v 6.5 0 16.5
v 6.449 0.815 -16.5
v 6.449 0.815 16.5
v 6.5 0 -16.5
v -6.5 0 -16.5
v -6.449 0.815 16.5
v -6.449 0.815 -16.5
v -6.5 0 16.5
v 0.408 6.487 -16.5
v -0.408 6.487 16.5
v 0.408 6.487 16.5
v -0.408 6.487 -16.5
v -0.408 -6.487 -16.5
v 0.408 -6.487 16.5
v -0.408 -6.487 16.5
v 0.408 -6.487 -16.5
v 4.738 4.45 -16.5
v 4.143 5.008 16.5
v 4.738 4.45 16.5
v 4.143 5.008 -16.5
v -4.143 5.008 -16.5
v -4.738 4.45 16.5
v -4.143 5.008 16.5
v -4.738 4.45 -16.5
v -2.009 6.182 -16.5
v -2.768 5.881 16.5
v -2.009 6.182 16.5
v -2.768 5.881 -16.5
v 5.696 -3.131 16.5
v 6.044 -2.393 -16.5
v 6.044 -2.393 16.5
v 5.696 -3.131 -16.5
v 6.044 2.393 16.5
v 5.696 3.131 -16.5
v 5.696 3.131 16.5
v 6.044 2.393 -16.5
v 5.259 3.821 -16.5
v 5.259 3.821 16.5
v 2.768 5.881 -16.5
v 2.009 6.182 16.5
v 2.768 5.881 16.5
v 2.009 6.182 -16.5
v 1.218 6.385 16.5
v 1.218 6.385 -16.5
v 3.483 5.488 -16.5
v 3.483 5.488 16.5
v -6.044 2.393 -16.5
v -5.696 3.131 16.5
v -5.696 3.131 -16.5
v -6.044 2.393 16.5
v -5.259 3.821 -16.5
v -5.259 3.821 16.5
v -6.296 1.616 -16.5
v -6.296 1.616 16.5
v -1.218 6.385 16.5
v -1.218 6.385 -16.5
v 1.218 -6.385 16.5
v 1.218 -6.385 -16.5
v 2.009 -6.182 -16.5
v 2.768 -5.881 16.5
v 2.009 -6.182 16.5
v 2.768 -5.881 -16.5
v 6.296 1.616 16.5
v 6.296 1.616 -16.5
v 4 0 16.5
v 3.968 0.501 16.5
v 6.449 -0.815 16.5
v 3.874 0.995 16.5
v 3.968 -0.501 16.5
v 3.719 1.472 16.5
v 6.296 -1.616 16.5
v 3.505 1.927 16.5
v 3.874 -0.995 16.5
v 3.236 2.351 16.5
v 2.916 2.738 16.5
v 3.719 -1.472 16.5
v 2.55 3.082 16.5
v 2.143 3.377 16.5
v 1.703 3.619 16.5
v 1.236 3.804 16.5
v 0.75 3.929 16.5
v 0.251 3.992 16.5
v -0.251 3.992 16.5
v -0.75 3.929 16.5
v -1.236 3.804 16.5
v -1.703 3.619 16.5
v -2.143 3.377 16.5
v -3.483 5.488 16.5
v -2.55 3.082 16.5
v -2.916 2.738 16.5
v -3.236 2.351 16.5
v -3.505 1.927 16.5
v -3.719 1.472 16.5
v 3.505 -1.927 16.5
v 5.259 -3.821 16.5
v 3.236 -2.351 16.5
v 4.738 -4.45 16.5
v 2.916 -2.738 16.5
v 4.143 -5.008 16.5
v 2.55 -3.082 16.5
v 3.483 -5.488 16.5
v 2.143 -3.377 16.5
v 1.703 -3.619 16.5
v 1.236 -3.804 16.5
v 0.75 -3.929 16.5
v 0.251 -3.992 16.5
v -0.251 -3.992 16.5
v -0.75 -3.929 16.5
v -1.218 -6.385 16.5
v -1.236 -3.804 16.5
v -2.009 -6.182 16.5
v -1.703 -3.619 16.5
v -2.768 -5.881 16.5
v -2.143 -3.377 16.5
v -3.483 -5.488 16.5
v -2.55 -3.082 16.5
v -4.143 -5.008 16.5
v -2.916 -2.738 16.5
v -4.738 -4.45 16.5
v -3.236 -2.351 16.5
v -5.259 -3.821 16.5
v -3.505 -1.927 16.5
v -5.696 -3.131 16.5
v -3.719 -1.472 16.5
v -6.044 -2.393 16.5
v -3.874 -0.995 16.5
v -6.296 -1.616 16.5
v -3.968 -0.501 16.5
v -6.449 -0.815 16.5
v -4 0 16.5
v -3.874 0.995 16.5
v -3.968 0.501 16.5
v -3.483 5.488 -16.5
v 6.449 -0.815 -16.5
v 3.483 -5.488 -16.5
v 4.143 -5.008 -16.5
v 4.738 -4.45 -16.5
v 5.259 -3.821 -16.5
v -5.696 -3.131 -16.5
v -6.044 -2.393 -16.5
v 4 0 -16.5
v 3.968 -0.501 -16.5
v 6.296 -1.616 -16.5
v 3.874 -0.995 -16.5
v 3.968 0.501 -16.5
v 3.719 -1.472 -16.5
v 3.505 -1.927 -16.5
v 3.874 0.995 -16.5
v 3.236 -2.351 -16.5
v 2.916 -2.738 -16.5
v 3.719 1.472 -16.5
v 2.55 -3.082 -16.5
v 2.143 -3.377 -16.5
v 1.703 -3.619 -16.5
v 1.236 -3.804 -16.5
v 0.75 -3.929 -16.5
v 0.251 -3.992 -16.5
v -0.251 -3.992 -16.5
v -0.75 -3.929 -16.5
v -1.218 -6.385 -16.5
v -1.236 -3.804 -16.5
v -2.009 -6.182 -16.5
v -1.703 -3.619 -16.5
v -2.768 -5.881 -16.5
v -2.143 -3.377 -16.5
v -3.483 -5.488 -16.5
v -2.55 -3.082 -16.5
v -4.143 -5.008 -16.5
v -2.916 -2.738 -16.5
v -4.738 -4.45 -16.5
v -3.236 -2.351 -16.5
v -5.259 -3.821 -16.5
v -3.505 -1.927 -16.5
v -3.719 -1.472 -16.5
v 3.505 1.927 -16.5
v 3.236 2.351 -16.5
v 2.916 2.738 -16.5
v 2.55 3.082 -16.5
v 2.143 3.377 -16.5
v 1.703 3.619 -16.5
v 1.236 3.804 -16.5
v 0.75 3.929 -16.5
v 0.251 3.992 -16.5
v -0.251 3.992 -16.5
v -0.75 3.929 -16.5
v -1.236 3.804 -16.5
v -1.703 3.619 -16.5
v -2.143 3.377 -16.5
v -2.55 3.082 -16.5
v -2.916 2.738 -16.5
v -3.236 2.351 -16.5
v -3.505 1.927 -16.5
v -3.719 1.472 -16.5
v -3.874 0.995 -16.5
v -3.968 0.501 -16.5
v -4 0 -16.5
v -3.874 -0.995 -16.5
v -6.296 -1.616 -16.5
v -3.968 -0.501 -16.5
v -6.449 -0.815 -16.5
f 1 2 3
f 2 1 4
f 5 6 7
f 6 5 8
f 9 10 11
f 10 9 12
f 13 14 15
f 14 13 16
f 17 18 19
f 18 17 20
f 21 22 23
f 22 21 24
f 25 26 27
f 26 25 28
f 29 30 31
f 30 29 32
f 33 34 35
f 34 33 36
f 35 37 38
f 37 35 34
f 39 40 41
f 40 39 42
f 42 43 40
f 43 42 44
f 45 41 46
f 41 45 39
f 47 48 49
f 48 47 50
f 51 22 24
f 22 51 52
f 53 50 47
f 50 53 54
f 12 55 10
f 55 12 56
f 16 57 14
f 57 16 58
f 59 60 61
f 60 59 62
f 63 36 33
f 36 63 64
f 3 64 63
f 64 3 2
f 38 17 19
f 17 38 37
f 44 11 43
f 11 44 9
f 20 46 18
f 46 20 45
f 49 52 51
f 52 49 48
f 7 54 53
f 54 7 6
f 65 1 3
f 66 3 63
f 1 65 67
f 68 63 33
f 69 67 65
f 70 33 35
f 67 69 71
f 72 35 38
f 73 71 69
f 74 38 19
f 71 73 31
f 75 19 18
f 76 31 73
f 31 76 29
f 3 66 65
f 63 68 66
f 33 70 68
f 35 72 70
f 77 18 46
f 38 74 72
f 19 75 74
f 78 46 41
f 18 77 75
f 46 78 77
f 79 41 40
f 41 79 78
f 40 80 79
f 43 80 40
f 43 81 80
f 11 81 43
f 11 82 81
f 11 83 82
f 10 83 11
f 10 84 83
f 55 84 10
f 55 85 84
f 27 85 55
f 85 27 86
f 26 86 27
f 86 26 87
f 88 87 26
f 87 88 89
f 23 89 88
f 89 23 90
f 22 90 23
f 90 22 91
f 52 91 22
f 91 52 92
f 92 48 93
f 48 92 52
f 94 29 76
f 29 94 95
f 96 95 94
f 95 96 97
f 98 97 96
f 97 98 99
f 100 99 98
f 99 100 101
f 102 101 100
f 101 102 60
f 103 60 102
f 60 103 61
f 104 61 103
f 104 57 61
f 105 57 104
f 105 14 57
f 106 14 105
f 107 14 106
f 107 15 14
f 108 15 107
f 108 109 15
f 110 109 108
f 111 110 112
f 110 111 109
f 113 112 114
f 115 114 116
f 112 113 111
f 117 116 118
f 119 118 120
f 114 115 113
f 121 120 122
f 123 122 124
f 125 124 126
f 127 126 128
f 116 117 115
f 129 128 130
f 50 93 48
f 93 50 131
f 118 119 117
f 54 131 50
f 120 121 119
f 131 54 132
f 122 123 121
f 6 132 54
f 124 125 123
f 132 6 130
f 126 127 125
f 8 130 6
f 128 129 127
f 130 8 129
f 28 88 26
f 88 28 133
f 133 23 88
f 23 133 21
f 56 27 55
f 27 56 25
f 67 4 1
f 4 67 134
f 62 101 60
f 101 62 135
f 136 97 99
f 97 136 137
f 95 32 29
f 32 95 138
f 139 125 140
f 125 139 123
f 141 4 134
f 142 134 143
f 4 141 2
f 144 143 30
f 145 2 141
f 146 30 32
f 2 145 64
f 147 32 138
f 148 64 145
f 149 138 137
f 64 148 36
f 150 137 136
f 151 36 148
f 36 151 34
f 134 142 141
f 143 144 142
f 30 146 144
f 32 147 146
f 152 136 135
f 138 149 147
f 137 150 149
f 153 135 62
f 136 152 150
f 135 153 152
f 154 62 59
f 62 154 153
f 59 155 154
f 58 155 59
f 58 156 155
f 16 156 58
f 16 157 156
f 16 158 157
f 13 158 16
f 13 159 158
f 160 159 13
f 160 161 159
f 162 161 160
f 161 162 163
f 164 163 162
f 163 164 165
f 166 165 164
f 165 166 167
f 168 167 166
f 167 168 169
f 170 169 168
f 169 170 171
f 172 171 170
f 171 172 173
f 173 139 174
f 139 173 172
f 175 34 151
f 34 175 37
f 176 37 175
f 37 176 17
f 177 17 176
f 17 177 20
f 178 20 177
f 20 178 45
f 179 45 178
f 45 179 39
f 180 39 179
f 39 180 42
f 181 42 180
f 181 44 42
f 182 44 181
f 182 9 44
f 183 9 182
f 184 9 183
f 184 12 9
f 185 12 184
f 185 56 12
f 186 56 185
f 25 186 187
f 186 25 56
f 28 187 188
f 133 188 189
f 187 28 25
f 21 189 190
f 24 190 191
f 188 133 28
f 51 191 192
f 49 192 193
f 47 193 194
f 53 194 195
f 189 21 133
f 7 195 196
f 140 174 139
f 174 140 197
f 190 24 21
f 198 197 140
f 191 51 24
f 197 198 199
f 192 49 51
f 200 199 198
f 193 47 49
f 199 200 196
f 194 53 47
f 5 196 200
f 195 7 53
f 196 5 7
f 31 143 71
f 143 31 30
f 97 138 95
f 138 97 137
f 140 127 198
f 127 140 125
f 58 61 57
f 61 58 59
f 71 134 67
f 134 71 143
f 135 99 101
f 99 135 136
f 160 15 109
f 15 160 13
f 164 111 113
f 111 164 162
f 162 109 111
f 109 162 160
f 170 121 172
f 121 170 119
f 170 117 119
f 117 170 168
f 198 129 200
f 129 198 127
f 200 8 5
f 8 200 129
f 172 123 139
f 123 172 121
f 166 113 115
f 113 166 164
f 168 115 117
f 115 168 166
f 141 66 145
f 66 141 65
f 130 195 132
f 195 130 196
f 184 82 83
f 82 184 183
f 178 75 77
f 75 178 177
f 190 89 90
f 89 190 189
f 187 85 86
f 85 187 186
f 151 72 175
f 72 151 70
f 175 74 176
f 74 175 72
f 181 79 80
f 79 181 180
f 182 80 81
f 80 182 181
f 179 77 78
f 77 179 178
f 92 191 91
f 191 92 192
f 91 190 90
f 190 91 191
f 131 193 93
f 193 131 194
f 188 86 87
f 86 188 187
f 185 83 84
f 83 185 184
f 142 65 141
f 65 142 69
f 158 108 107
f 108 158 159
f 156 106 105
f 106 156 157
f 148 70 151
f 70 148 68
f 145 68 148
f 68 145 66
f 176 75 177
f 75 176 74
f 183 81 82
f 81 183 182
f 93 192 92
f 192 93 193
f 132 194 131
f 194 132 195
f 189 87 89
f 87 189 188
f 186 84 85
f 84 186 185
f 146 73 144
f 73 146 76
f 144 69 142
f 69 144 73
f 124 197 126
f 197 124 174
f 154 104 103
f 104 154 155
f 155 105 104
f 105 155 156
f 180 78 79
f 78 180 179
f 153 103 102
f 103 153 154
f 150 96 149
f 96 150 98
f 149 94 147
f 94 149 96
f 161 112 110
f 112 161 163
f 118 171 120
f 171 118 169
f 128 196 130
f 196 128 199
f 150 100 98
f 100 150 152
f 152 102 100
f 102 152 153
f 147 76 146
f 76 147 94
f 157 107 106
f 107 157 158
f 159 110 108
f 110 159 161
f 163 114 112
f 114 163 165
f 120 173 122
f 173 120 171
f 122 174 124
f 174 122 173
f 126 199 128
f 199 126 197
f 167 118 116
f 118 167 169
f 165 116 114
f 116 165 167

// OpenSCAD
$fn = 50;


difference() {
	union() {
		translate(v = [0, 0, -16.5000000000]) {
			cylinder(h = 33, r = 6.5000000000);
		}
	}
	union() {
		translate(v = [0, 0, -100.0000000000]) {
			cylinder(h = 200, r = 4);
		}
	}
}
